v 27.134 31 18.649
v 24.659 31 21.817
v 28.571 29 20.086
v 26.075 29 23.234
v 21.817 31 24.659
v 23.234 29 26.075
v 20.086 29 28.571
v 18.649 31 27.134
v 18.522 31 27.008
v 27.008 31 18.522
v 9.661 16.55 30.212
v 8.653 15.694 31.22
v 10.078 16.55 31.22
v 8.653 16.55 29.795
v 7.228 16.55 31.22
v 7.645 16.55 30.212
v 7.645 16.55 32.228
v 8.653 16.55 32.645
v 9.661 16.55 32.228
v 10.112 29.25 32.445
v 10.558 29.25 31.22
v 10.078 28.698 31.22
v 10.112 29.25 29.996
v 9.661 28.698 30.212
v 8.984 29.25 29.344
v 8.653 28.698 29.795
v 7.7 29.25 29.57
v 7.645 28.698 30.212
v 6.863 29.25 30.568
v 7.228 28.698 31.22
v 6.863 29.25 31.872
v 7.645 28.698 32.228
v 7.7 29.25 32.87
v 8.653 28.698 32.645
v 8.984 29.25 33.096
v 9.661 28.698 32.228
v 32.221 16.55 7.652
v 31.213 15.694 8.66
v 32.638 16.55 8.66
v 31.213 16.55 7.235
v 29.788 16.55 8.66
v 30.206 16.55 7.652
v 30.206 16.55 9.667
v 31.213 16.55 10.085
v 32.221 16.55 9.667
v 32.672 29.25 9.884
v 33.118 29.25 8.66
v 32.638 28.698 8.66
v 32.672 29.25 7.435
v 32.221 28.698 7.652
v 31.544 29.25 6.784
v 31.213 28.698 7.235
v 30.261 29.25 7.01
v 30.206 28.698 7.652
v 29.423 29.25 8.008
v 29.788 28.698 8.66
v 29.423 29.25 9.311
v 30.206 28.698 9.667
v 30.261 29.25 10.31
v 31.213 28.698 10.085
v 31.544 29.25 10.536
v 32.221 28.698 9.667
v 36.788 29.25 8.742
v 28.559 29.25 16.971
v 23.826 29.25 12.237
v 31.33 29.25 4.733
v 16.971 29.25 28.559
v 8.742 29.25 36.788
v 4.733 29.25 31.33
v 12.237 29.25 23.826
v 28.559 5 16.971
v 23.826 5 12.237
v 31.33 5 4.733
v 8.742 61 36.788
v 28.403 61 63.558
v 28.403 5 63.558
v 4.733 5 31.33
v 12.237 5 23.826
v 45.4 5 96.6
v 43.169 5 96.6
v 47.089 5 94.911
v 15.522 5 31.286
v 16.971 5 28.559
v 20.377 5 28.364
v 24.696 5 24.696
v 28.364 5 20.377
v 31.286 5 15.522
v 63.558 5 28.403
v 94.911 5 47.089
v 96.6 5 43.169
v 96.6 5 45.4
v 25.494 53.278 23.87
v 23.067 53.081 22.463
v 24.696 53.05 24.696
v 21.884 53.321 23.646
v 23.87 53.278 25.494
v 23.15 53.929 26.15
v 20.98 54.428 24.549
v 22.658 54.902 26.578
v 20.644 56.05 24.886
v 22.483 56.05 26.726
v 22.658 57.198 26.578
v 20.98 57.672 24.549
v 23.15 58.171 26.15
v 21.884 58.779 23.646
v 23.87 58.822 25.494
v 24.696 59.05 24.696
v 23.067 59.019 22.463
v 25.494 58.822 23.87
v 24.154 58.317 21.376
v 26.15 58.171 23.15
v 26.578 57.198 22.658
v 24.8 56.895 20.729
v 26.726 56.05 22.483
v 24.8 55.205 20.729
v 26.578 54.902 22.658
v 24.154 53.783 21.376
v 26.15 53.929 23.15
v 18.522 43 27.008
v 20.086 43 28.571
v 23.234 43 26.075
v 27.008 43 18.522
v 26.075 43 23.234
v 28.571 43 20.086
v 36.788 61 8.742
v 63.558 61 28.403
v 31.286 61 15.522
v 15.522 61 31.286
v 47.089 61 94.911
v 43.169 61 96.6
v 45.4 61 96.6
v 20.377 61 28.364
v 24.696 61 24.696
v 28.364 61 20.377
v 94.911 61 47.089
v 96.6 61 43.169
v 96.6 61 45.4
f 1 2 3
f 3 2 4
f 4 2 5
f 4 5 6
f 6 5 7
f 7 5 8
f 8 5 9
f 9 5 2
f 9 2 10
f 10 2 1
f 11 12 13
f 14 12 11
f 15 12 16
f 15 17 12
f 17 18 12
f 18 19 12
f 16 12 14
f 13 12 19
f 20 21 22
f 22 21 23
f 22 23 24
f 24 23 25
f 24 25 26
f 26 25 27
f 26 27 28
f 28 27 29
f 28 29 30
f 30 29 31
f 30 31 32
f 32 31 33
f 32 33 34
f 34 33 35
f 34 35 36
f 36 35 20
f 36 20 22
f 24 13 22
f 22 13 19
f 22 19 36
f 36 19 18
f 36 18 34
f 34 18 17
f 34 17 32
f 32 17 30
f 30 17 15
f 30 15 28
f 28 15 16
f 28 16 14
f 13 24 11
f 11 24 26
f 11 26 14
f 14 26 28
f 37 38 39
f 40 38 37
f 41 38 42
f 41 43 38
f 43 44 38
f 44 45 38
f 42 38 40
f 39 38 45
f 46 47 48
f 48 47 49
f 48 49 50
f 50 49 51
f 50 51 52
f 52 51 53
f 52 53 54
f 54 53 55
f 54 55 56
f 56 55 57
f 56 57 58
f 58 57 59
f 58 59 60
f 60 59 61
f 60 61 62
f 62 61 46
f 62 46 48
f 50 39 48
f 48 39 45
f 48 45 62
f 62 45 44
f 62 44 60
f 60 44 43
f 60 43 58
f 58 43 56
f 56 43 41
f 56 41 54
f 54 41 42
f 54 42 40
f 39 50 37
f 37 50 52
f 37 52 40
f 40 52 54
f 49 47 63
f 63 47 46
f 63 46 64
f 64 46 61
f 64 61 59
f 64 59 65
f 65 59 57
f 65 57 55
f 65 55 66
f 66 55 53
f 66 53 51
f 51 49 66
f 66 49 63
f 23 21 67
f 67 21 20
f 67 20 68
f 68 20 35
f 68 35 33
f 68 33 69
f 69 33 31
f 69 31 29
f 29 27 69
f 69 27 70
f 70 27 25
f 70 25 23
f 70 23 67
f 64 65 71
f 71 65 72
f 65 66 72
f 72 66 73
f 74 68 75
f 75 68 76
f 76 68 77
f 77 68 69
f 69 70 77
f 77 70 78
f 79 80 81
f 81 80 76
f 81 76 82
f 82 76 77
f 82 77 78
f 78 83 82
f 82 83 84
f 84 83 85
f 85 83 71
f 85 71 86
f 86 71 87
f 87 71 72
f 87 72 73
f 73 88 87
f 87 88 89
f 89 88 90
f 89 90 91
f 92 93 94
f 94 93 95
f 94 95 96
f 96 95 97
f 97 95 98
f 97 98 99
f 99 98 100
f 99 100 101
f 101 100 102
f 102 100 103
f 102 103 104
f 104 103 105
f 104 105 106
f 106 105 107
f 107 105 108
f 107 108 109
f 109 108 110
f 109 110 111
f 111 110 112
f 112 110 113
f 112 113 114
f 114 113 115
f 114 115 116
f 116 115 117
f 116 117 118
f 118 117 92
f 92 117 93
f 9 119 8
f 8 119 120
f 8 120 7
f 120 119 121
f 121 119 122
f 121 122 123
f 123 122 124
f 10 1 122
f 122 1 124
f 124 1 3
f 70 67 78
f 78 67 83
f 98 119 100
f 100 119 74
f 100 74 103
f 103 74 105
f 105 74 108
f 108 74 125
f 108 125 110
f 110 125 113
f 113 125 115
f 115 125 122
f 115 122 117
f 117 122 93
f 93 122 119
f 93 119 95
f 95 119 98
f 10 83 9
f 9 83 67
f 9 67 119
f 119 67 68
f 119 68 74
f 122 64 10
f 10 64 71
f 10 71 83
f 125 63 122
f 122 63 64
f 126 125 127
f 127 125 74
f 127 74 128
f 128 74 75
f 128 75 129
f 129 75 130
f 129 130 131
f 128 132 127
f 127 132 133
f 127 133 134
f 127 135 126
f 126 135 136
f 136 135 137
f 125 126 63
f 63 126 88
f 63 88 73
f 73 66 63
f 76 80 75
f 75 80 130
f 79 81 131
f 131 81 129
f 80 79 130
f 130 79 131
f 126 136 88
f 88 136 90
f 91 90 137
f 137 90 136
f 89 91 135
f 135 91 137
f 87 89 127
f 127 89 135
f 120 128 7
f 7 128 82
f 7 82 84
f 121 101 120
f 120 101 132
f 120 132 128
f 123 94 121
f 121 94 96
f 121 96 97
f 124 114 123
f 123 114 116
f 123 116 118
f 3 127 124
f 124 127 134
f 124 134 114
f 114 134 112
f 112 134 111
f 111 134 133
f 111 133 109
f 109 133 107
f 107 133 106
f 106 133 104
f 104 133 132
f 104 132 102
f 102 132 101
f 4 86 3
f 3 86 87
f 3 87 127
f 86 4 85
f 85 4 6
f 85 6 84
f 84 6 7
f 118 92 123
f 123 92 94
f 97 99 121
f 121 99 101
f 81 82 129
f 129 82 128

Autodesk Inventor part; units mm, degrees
ref_plane "YZ Plane" through (0, 0, 0) normal (1, 0, 0) x (0, 1, 0)
ref_plane "XZ Plane" through (0, 0, 0) normal (0, 1, 0) x (-1, 0, 0)
sketch "Sketch1" plane through (0, 0, 0) normal (0, 1, 0) x (-1, 0, 0)
  line L0 (101.6, -101.6) -> (-101.6, -101.6)
  line L1 (-101.6, -101.6) -> (-101.6, 101.6)
  line L2 (-101.6, 101.6) -> (101.6, 101.6)
  line L3 (101.6, 101.6) -> (101.6, -101.6)
  line L4 (96.6, -96.6) -> (-96.6, -96.6)
  line L5 (-96.6, -96.6) -> (-96.6, 96.6)
  line L6 (-96.6, 96.6) -> (96.6, 96.6)
  line L7 (96.6, 96.6) -> (96.6, -96.6)
  line L8 (101.6, 101.6) -> (-40.4, 101.6)
  circle A0 centre (0, 0) radius 88.9
  circle A1 centre (0, 0) radius 109.3376
  line L9 (-40.4, 101.6) -> (-101.6, 40.4)
  line L10 (-45.4, 101.6) -> (-101.6, 45.4)
  line L11 (96.6, 96.6) -> (96.6, 101.6)
  line L12 (-45.4, 101.6) -> (-35.4, 101.6)
  line L13 (-35.4, 101.6) -> (-35.4, 96.6)
  line L14 (-35.4, 96.6) -> (-45.4, 96.6)
  line L15 (-45.4, 96.6) -> (-45.4, 101.6)
  line L16 (-45.4, 101.6) -> (-43.114, 101.6)
  line L17 (-43.114, 101.6) -> (-43.114, 96.6)
  line L18 (-43.114, 96.6) -> (-45.4, 96.6)
  line L19 (-45.4, 96.6) -> (-45.4, 101.6)
  line L20 (-96.6, 45.4) -> (-101.6, 45.4)
  line L21 (-101.6, 45.4) -> (-101.6, 43.114)
  line L22 (-101.6, 43.114) -> (-96.6, 43.114)
  line L23 (-96.6, 43.114) -> (-96.6, 45.4)
  point P0 (96.6, 51.2168)
  point P1 (101.6, 40.4)
  point P2 (101.6, -40.4)
  point P3 (96.6, -51.2168)
  point P4 (-96.6, 45.4)
  point P5 (-45.4, 96.6)
  dimension "d0" = 203.2
  dimension "d1" = 203.2
  dimension "d2" = 101.6
  dimension "d3" = 101.6
  dimension "d4" = 5
  dimension "d5" = 5
  dimension "d6" = 5
  dimension "d7" = 5
  dimension "d10" = 142
  dimension "d12" = 61.2
  dimension "d14" = 177.8
  dimension "d15" = 5
  dimension "d16" = 5
  dimension "d17" = 10
  dimension "d86" = 2.286
  dimension "d87" = 2.286
extrude "Extrusion1" add sketch "Sketch1" along normal blind 5 contours L0 A1 L4 L7 L3 | L0 A1 L4 | A1 L7 L3 | L0 L1 A1 L5 L4 | A1 L7 L4 | L4 A1 L5 L9 L6 L7 | A1 L7 L11 L2 L3 | L4 L5 A1 | A1 L6 L7 | L1 L9 L22 L5 A1 | L11 L6 A1 L2 | L6 L13 L2 A1 | L1 L22 A1 | A1 L22 L9 | L22 L9 L5 | L6 L17 L9 L2 L13 | L1 L20 A1 L22 | A1 L20 L9 L22 | L20 A1 L10 L5 | L5 L10 L6 L9 | A1 L17 L2 | L9 L17 A1 | L6 L9 L17 | L1 L2 L10 A1 L6 L5 | L10 A1 L20 | L10 A1 L5 | L5 A1 L6 L10 | L15 A1 L17 L9 | L6 L10 A1 L15 | L17 A1 L15 L2 | L5 L6 A1 | L6 A1 L10 | A1 L10 L15 | A0
sketch "Sketch3" plane through (0, 5, 0) normal (0, 1, 0) x (1, 0, 0)
  circle A0 centre (0, 0) radius 88.9
  line L0 (-101.6, 101.6) -> (-101.6, -101.6) projected
  line L1 (-101.6, -101.6) -> (101.6, -101.6) projected
  line L2 (-101.6, 101.6) -> (101.6, 101.6)
  line L3 (101.6, 101.6) -> (101.6, -101.6)
  line L4 (101.6, -101.6) -> (-101.6, -101.6)
  line L5 (-101.6, -101.6) -> (-101.6, 101.6)
  line L6 (-96.6, 96.6) -> (96.6, 96.6)
  line L7 (96.6, 96.6) -> (96.6, -96.6)
  line L8 (96.6, -96.6) -> (-96.6, -96.6)
  line L9 (-96.6, -96.6) -> (-96.6, 96.6)
  line L10 (-101.6, -101.6) -> (40.4, -101.6)
  circle A1 centre (0, 0) radius 109.3376
  line L11 (40.4, -101.6) -> (101.6, -40.4)
  line L12 (101.6, -101.6) -> (101.6, 101.6) projected
  line L13 (45.4038, -101.6) -> (101.6, -45.4038)
  line L14 (96.6, -45.4) -> (101.6, -45.4038)
  line L15 (45.4, -96.6) -> (45.4038, -101.6)
  line L16 (96.6, -45.4) -> (101.6, -45.4)
  line L17 (101.6, -45.4) -> (101.6, -43.114)
  line L18 (101.6, -43.114) -> (96.6, -43.114)
  line L19 (96.6, -43.114) -> (96.6, -45.4)
  line L20 (45.4038, -101.6) -> (43.1178, -101.6)
  line L21 (43.1178, -101.6) -> (43.1178, -96.6)
  line L22 (43.1178, -96.6) -> (45.4038, -96.6)
  line L23 (45.4038, -96.6) -> (45.4038, -101.6)
  point P0 (45.4038, -101.6)
  point P1 (50.4038, -96.6)
  point P2 (96.6, -50.4038)
  dimension "d28" = 177.8
  dimension "d29" = 5
  dimension "d30" = 5
  dimension "d31" = 5
  dimension "d32" = 5
  dimension "d33" = 142
  dimension "d76" = 5.0038
  dimension "d77" = 5.0038
  dimension "d88" = 2.286
  dimension "d89" = 2.286
extrude "Extrusion3" cut sketch "Sketch3" against normal blind 2 contours L2 A1 L6 L9 L0 | A1 L9 L0 | L2 A1 L6 | A1 L9 L8 L1 L0 | L2 L3 A1 L7 L6 | A1 L8 L21 L11 L1 | L3 L11 L18 L7 A1 | A1 L21 L1 | L11 L21 A1 | L3 L18 A1 | A1 L18 L11
sketch "Sketch4" plane through (0, 5, 0) normal (0, 1, 0) x (1, 0, 0)
  line L0 (101.6, 101.6) -> (-101.6, 101.6)
  line L1 (-101.6, 101.6) -> (-101.6, -101.6)
  line L2 (-101.6, -101.6) -> (101.6, -101.6)
  line L3 (101.6, -101.6) -> (101.6, 101.6)
  circle A0 centre (0, 0) radius 2.5
  line L4 (11.3314, 2.139) -> (-2.139, -11.3314)
  line L5 (0, 0) -> (-5.6569, 5.6569)
  line L6 (-5.6569, -14.8492) -> (-26.163, 5.6569)
  line L7 (-5.6569, 26.163) -> (14.8492, 5.6569)
  circle A1 centre (-5.6569, 5.6569) radius 14
  line L8 (-26.163, 5.6569) -> (-5.6569, 26.163)
  line L9 (14.8492, 5.6569) -> (-5.6569, -14.8492)
  line L10 (-40.3051, 5.6569) -> (-5.6569, 40.3051)
  line L11 (-5.6569, 40.3051) -> (28.9914, 5.6569)
  line L12 (28.9914, 5.6569) -> (-5.6569, -28.9914)
  line L13 (-5.6569, -28.9914) -> (-40.3051, 5.6569)
  line L14 (-22.6451, 9.1747) -> (-9.1747, 22.6451)
  line L15 (-9.1747, 22.6451) -> (-12.7668, 26.2372)
  line L16 (-12.7668, 26.2372) -> (-26.2372, 12.7668)
  line L17 (-26.2372, 12.7668) -> (-22.6451, 9.1747)
  point P0 (9.525, 22.5)
  point P1 (-9.525, -6.5)
  dimension "d37" = 203.2
  dimension "d38" = 203.2
  dimension "d39" = 8
  dimension "d40" = 28
  dimension "d41" = 29
  dimension "d42" = 29
  dimension "d43" = 14.5
  dimension "d44" = 10
  dimension "d45" = 10
  dimension "d46" = 10
  dimension "d47" = 10
  dimension "d48" = 5.08
  dimension "d49" = 9.525
  dimension "d50" = 9.525
  dimension "d55" = 101.6
  dimension "d56" = 101.6
extrude "Extrusion4" cut sketch "Sketch4" against normal blind 1 contours A0 | L4 L9 L6 L8 L7 | L8 L17 L16 L15 | A1 | L10 L11 L12 L13
sketch "Sketch6" plane through (0, 5, 0) normal (0, 1, 0) x (1, 0, 0)
  line L0 (45.4038, -101.6) -> (0, 0)
  line L1 (50.4038, -96.6) -> (45.4038, -101.6) projected
  line L2 (96.6, -43.114) -> (96.6, 96.6) projected
  line L3 (101.6, -101.6) -> (101.6, 101.6) projected
  circle A0 centre (0, 0) radius 34.925
  circle A1 centre (0, 0) radius 33.425
  line L4 (-101.6, 101.6) -> (-101.6, -101.6) projected
  line L5 (-101.6, -101.6) -> (40.4, -101.6)
  line L6 (-101.6, -101.6) -> (101.6, -101.6) projected
  line L7 (101.6, 101.6) -> (101.6, -43.114) projected
  line L8 (101.6, -45.4038) -> (0, 0)
  line L9 (-96.6, -96.6) -> (43.1178, -96.6) projected
  line L10 (96.6, -43.114) -> (96.6, 96.6) projected
  line L11 (43.1178, -101.6) -> (-101.6, -101.6) projected
  line L12 (101.6, -45.4038) -> (96.6, -50.4038) projected
  line L13 (45.4038, -101.6) -> (101.6, -45.4038)
  line L14 (43.1178, -101.6) -> (101.6, -101.6) projected
  line L15 (0, 0) -> (101.6, -50.4076)
  line L16 (50.4076, -101.6) -> (0, 0)
  line L17 (43.1694, -96.6) -> (47.9269, -96.6)
  line L18 (96.6, -43.1694) -> (96.6, -47.9269)
  line L19 (40.4, -101.6) -> (101.6, -40.4)
  point P0 (13.6374, -30.5164)
  point P1 (30.5164, -13.6374)
  point P2 (14.2494, -31.8859)
  point P3 (31.2861, -15.5222)
  point P4 (29.9423, -14.8555)
  point P5 (31.8859, -14.2494)
  point P6 (98.2555, -48.7483)
  point P7 (96.6, -47.9269)
  point P8 (47.9269, -96.6)
  point P9 (15.5222, -31.2861)
  point P10 (96.6, -45.4)
  point P11 (45.4, -96.6)
  point P12 (14.8555, -29.9423)
  point P13 (96.6, -45.4)
  point P14 (45.4, -96.6)
  point P15 (45.4, -96.6)
  point P16 (47.089, -94.911)
  point P17 (94.911, -47.089)
  point P18 (96.6, -45.4)
  point P19 (43.8583, -98.1417)
  point P20 (98.1417, -43.8583)
  point P21 (45.4, -96.6)
  point P22 (96.6, -45.4)
  dimension "d71" = 69.85
  dimension "d72" = 66.85
  dimension "d75" = 142
  dimension "d78" = 5.0038
  dimension "d82" = 5.0038
extrude "Extrusion6" add sketch "Sketch6" along normal blind 56 contours L0 A0 L16 L19 L17 | L0 A1 L16 A0 | L16 A1 L15 A0 | L15 A0 L8 L18 L19 | A0 L15 A1 L8
fillet "Fillet3" radius 12.7 1 edges at (101.6, 2.5, 101.6)
sketch "Sketch9" plane through (0, 4, 0) normal (0, 1, 0) x (1, 0, 0)
  point P0 (0, 0)
sketch "Sketch10" plane through (0, 5, 0) normal (0, 1, 0) x (1, 0, 0)
  point P0 (0, 0)
ref_plane "Work Plane1" through (24.6957, 5, 24.6957) normal (0.7071068, 0, 0.7071068) x (0.7071068, 0, -0.7071068)
sketch "Sketch15" plane through (0, 5, 0) normal (0, 1, 0) x (1, 0, 0)
  line L0 (13.6374, -30.5164) -> (43.1694, -96.6) projected
  line L1 (28.4034, -63.5582) -> (-0.6569, -23.9914)
  line L2 (28.9914, 5.6569) -> (-5.6569, -28.9914) projected
  line L3 (96.6, -43.1694) -> (30.5164, -13.6374) projected
  line L4 (-5.6569, 40.3051) -> (28.9914, 5.6569) projected
  line L5 (63.5582, -28.4034) -> (23.9914, 0.6569)
  line L6 (2.3374, -28.0682) -> (28.0682, -2.3374)
  arc A0 (13.6374, -30.5164) -> (30.5164, -13.6374) centre (0, 0) ccw projected
  line L7 (28.4034, -63.5582) -> (13.6374, -30.5164)
  line L8 (63.5582, -28.4034) -> (30.5164, -13.6374)
  arc A1 (13.6374, -30.5164) -> (30.5164, -13.6374) centre (0, 0) ccw
  dimension "d138" = 5
  dimension "d139" = 5
  dimension "d140" = 5
extrude "Extrusion11" add sketch "Sketch15" along normal up to surface (56 mm away) contours L0 L1 L6 L5 L3 A0
sketch "Sketch16" plane through (0, 61, 0) normal (0, 1, 0) x (1, 0, 0)
  line L0 (2.3374, -28.0682) -> (28.0682, -2.3374) projected
  line L1 (9.4085, -20.9971) -> (12.2369, -23.8255)
  line L2 (12.2369, -23.8255) -> (23.8256, -12.2369)
  line L3 (23.8256, -12.2369) -> (20.9971, -9.4085)
  line L4 (12.2369, -23.8255) -> (23.8256, -12.2369)
  line L5 (23.8256, -12.2369) -> (28.5592, -16.9706)
  line L6 (28.5592, -16.9706) -> (16.9706, -28.5592)
  line L7 (16.9706, -28.5592) -> (12.2369, -23.8255)
  line L8 (28.4034, -63.5582) -> (2.3374, -28.0682) projected
  line L9 (28.0682, -2.3374) -> (63.5582, -28.4034) projected
  line L10 (23.8256, -12.2369) -> (31.3296, -4.7328)
  line L11 (12.2369, -23.8255) -> (4.7328, -31.3296)
  line L12 (28.4034, -63.5582) -> (2.3374, -28.0682) projected
  point P0 (0, 0)
  point P1 (29.3133, -3.2519)
  point P2 (12.2369, -23.8255)
  dimension "d144" = 10
  dimension "d145" = 10
  dimension "d146" = 4
  dimension "d152" = 0
  dimension "d153" = 0
extrude "Extrusion12" cut sketch "Sketch16" against normal up to surface (56 mm away)
sketch "Sketch11" plane through (24.6957, 5, 24.6957) normal (0.7071068, 0, 0.7071068) x (0.7071068, 0, -0.7071068)
  line L0 (143.6841, -5) -> (0, -5) projected
  line L1 (0, -5) -> (0, 32)
  circle A0 centre (0, 32) radius 5.5
  line L2 (0, 32) -> (0, 51.05)
  circle A1 centre (0, 51.05) radius 3
  line L3 (-6, 38) -> (6, 38)
  line L4 (6, 38) -> (6, 26)
  line L5 (6, 26) -> (-6, 26)
  line L6 (-6, 26) -> (-6, 38)
  line L7 (0, 48.05) -> (0, 38)
  dimension "d172" = 6
  dimension "d120" = 37
  dimension "d121" = 11
  dimension "d171" = 19.05
  dimension "d221" = 6
  dimension "d222" = 6
  dimension "d223" = 6
  dimension "d224" = 6
extrude "Extrusion8" cut sketch "Sketch11" against normal blind 127
sketch "Sketch18" plane through (101.6, 3, 43.114) normal (1, 0, 0) x (0, 0, -1)
  line L0 (-53.486, 2) -> (-58.486, 2) projected
  line L1 (-58.486, 2) -> (145.4353, 2)
  line L2 (145.4353, 2) -> (145.4353, -4.8825)
  line L3 (145.4353, -4.8825) -> (-58.486, -4.8825)
  line L4 (-58.486, -4.8825) -> (-58.486, 2)
  point P0 (43.114, -3)
extrude "Extrusion13" cut sketch "Sketch18" against normal through all
sketch "Sketch30" plane through (0, 61, 0) normal (0, 1, 0) x (1, 0, 0)
  line L0 (2.3374, -28.0682) -> (28.0682, -2.3374)
  line L1 (9.4085, -20.9971) -> (12.944, -24.5327)
  line L2 (12.944, -24.5327) -> (24.5327, -12.944)
  line L3 (24.5327, -12.944) -> (20.9971, -9.4085)
  line L4 (12.944, -24.5327) -> (24.5327, -12.944)
  line L5 (24.5327, -12.944) -> (28.5592, -16.9706)
  line L6 (28.5592, -16.9706) -> (16.9706, -28.5592)
  line L7 (16.9706, -28.5592) -> (12.944, -24.5327)
  line L8 (12.944, -24.5327) -> (5.3317, -32.145)
  line L9 (28.4034, -63.5582) -> (2.3374, -28.0682)
  line L10 (24.5327, -12.944) -> (32.145, -5.3317)
  line L11 (28.0682, -2.3374) -> (63.5582, -28.4034)
  line L12 (31.3296, -4.7328) -> (63.5582, -28.4034) projected
  line L13 (36.788, -8.7418) -> (28.5592, -16.9706)
  line L14 (28.5592, -16.9706) -> (8.7418, -36.788)
  line L15 (36.788, -8.7418) -> (32.145, -5.3317)
  line L16 (28.4034, -63.5582) -> (4.7328, -31.3296) projected
  line L17 (8.7418, -36.788) -> (5.3317, -32.145)
  point P0 (0, 0)
  point P1 (0, 0)
  point P2 (16.9706, -28.5592)
  dimension "d231" = 10
  dimension "d232" = 10
  dimension "d233" = 5
  dimension "d234" = 0
  dimension "d235" = 0
  dimension "d240" = 0
extrude "Extrusion14" cut sketch "Sketch30" against normal blind 31.75 contours L0 L1 L8 L9 | L0 L11 L10 L3 | L7 L14 L9 L8 | L10 L11 L13 L5
sketch "Sketch32" plane through (28.4034, 5, 63.5582) normal (-0.8059719, 0, 0.5919538) x (0.5919538, 0, 0.8059719)
  line L0 (-33.2148, 56) -> (-33.2148, 24.25) projected
  line L1 (-33.2148, 24.25) -> (-38.2681, 24.25)
  line L2 (-41.5932, 24.25) -> (-34.9759, 24.25) projected
  line L3 (-38.9873, 24.25) -> (-33.2148, 40.125)
  point P0 (-68.0396, -5)
  point P1 (-40.6047, 22.75)
  point P2 (-45.5472, 22.75)
sketch "Sketch33" plane through (0, 29.25, 0) normal (0, 1, 0) x (1, 0, 0)
  circle A0 centre (2, 3.9204) radius 1.5
  circle A1 centre (33.9053, 3.9204) radius 1.5
  line L0 (35.9053, 0) -> (31.9053, 0)
  line L1 (31.9053, 7.8408) -> (35.9053, 7.8408)
  line L2 (35.9053, 7.8408) -> (35.9053, 0)
  line L3 (31.9053, 2) -> (31.9053, 7.8408)
  line L4 (0, 0) -> (0, 7.8408)
  line L5 (0, 7.8408) -> (4, 7.8408)
  circle A2 centre (31.2131, -8.6598) radius 1.5
  circle A3 centre (8.6529, -31.22) radius 1.5
  line L6 (31.3296, -4.7328) -> (36.788, -8.7418) projected
  line L7 (8.7418, -36.788) -> (4.7328, -31.3296) projected
  line L8 (31.2131, -8.6598) -> (8.6529, -31.22)
  line L9 (36.788, -8.7418) -> (8.7418, -36.788) projected
  line L10 (12.2369, -23.8255) -> (16.9706, -28.5592) projected
  line L11 (28.5592, -16.9706) -> (23.8256, -12.2369) projected
  point P0 (36.9053, 0)
  point P1 (32.145, -5.3317)
  point P2 (5.3317, -32.145)
  point P3 (28.0682, -2.3374)
  point P4 (2.3374, -28.0682)
  dimension "d241" = 3
  dimension "d242" = 3
  dimension "d243" = 7.8408
  dimension "d244" = 3.9204
  dimension "d245" = 4
  dimension "d246" = 2
  dimension "d247" = 2
  dimension "d248" = 3.9204
  dimension "d249" = 31.9053
  dimension "d250" = 3
  dimension "d251" = 3
  dimension "d254" = 31.905
  dimension "d264" = 4
  dimension "d269" = 7.7629
  dimension "d270" = 7.7532
hole "Hole3" at (8.6529, 29.25, 31.22) at (31.2131, 29.25, 8.6598) direction (0, -1, 0) diameter 2.85 depth 12.7 tip angle 118 countersink diameter 3.81 countersink angle 82 thread size "M3.5x0.6" class "6H" standard "ANSI Metric M Profile"
chamfer "Chamfer1" distance 2 distance2 2 1 edges at (24.6957, 31, 24.6957) measured on face at (17.0887, 32.3333, 30.4587)
sketch "Sketch34" plane through (0, 61, 0) normal (0, 1, 0) x (1, 0, 0)
  point P0 (0, 0)
equation "\"d1\" = d0"
equation "\"d2\" = 0.5 * d0"
equation "\"d3\" = 0.5 * d0"
properties part number "Box_Walls_2"
